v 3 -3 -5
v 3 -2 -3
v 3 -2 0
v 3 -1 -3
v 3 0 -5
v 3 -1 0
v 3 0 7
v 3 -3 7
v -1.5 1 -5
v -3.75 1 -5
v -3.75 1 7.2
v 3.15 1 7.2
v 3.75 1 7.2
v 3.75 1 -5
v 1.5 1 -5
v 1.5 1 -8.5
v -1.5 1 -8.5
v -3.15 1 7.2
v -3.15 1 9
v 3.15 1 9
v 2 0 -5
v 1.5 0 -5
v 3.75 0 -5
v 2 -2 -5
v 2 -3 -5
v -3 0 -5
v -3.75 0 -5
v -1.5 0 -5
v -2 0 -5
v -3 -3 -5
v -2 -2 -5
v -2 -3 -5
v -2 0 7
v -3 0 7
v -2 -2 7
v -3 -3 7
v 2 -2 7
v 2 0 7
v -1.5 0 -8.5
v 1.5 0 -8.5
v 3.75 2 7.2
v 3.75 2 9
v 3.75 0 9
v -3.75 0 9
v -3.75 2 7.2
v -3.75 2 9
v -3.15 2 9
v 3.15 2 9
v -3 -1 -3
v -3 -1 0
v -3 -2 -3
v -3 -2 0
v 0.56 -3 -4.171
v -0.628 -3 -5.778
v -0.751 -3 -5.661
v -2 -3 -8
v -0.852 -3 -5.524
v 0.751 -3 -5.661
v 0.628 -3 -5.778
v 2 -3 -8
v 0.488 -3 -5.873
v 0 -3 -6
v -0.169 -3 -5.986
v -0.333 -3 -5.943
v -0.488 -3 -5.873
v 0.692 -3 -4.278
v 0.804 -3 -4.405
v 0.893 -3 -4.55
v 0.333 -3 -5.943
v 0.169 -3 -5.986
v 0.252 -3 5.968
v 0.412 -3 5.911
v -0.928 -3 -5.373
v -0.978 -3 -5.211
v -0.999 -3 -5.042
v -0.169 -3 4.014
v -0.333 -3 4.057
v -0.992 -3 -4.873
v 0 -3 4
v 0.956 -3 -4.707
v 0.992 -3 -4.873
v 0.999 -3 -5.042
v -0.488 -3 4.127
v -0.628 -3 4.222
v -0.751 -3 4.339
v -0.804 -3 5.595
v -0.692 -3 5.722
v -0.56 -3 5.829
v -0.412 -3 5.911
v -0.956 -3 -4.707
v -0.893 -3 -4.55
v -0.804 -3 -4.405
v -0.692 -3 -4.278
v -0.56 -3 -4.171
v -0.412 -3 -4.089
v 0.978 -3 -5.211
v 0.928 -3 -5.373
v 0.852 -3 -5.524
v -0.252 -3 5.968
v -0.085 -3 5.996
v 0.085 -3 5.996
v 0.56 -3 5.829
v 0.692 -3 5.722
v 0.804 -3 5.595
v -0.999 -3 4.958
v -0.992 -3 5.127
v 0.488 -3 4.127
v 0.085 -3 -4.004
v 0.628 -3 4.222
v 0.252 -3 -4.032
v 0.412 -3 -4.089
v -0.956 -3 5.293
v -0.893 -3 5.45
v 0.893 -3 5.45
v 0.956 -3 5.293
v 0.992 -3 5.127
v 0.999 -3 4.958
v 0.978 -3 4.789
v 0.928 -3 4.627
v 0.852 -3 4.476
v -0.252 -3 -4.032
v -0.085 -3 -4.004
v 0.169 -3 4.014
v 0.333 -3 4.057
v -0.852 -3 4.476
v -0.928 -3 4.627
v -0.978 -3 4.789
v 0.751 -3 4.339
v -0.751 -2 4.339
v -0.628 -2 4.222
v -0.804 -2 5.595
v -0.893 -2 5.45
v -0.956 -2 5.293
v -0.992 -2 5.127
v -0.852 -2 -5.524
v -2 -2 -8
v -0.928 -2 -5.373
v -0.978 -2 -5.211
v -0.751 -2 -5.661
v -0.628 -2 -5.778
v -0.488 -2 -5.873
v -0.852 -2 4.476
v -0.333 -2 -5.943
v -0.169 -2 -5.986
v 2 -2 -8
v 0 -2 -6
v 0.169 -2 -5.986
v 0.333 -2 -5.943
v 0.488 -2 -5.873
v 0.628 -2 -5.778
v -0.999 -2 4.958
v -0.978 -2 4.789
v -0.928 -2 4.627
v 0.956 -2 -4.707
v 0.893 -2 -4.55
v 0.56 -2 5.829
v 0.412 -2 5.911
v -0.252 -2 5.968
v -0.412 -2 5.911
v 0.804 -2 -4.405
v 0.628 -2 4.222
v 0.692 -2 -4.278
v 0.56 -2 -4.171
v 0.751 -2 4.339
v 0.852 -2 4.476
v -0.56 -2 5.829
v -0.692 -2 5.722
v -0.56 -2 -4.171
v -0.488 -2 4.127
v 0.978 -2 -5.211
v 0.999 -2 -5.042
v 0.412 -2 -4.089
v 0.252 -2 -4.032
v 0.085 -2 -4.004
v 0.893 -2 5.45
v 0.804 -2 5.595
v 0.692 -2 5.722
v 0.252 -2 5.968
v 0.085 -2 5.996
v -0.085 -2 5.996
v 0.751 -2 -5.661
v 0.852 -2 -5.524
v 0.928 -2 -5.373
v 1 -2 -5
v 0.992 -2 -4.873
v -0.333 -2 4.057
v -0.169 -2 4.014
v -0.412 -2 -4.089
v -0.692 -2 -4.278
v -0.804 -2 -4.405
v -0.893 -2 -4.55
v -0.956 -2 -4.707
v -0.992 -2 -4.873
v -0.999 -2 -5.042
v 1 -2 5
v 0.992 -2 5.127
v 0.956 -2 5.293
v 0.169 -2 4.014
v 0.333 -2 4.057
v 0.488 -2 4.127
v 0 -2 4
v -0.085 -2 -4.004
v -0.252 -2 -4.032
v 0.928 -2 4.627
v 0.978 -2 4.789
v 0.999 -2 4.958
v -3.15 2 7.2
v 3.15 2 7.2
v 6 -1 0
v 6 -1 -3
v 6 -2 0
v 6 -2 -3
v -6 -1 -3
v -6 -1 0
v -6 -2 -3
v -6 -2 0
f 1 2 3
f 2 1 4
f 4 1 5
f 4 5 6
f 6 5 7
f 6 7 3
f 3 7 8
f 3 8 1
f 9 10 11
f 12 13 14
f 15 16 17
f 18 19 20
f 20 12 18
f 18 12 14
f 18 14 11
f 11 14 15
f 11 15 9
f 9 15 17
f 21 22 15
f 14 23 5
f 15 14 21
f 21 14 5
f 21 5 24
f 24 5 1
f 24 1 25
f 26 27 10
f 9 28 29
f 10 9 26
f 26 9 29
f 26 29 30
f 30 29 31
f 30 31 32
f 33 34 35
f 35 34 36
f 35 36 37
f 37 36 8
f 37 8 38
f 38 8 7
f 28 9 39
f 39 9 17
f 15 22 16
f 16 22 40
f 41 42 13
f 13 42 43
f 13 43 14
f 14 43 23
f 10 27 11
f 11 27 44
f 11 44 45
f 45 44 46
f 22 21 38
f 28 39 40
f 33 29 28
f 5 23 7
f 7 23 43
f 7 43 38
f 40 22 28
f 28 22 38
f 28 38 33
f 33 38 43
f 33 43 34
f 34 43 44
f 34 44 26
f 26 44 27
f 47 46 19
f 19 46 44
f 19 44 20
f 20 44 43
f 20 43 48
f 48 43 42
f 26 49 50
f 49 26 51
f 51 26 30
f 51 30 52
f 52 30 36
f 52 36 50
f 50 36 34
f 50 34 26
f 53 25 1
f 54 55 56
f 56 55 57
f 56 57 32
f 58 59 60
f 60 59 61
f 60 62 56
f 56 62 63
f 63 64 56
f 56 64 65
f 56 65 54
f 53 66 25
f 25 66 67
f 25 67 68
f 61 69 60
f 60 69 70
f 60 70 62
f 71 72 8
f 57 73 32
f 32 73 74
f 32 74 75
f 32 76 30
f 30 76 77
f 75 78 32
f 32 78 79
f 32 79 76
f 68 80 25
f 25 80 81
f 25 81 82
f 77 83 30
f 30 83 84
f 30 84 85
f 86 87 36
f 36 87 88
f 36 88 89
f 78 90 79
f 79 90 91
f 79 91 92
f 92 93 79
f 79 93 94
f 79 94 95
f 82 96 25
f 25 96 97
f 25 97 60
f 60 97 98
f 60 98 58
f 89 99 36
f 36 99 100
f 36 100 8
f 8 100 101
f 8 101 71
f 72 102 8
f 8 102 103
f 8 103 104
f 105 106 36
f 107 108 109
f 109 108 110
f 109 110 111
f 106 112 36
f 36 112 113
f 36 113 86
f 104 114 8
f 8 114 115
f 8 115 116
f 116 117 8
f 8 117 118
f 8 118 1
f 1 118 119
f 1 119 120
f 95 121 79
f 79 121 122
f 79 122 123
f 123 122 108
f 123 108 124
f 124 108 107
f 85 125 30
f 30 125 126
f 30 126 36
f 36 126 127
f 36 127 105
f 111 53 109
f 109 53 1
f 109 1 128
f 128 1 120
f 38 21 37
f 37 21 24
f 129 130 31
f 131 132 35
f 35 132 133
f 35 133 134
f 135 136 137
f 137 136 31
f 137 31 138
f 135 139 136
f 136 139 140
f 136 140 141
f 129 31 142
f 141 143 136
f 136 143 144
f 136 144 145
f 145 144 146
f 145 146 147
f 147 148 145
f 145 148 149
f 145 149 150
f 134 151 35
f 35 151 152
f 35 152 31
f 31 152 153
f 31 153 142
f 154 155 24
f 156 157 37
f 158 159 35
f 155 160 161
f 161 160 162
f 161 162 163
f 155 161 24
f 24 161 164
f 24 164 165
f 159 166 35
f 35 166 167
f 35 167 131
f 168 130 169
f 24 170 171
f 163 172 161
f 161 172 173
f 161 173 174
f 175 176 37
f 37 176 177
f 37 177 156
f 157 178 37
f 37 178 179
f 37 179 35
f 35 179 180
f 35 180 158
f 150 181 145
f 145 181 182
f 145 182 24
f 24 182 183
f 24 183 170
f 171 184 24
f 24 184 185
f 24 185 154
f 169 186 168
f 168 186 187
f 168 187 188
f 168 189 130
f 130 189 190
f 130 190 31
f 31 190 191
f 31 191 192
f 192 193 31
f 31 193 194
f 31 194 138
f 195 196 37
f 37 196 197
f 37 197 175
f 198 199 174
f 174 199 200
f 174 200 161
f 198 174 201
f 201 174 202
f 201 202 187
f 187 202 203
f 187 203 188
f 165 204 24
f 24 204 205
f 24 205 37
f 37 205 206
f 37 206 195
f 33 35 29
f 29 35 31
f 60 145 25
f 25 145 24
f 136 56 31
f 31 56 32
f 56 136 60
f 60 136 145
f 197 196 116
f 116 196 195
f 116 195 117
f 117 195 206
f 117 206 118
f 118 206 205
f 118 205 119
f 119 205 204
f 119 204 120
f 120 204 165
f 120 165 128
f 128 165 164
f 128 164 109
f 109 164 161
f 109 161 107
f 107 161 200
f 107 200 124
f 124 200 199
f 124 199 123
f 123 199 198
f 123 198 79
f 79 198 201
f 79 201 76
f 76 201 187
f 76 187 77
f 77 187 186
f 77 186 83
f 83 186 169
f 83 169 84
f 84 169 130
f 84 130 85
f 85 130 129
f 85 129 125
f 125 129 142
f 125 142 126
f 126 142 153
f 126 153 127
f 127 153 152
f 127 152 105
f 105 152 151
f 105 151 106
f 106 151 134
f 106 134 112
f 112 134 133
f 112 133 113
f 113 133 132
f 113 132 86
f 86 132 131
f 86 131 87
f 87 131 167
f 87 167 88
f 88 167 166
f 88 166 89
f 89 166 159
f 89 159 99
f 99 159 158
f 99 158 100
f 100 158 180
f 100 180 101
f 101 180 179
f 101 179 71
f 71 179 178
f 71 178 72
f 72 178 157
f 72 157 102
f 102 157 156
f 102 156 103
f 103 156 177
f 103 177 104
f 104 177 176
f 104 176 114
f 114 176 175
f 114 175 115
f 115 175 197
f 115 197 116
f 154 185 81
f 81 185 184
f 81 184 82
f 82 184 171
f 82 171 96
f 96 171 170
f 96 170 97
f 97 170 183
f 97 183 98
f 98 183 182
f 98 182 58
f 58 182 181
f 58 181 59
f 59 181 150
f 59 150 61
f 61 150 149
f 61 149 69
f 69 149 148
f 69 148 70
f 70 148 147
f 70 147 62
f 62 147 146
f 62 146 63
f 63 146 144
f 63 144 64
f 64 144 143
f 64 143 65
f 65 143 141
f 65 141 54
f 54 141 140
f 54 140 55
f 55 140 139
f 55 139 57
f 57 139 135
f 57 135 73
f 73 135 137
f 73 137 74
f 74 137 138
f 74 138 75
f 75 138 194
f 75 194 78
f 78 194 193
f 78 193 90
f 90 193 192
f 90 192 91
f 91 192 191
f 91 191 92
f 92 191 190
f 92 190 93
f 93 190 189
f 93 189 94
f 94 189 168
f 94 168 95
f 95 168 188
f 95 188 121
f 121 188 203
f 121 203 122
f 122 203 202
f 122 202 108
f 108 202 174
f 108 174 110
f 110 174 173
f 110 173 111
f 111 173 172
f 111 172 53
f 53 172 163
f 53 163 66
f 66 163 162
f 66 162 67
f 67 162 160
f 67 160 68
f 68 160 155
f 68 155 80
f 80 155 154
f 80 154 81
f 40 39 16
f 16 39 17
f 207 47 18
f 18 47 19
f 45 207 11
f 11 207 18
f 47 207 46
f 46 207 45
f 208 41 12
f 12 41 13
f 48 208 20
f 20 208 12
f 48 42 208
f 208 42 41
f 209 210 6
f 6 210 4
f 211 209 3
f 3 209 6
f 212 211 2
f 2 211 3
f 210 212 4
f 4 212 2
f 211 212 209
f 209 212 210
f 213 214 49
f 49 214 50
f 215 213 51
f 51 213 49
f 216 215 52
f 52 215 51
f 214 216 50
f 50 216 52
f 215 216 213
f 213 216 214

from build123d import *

# Parameters (mm, degrees)
SKETCH1_W            = 7.5
SKETCH1_H            = 10
BOSS_EXTRUDE1_DEPTH  = 1
SKETCH10_W           = 7.5
SKETCH10_H           = 1
BOSS_EXTRUDE5_DEPTH  = 2
SKETCH56_W           = 7.5
SKETCH56_H           = 1
BOSS_EXTRUDE17_DEPTH = 2
SKETCH57_W           = 3
SKETCH57_H           = 1
BOSS_EXTRUDE18_DEPTH = 5
SKETCH58_W           = 1.5
SKETCH58_H           = 1
BOSS_EXTRUDE19_DEPTH = 2
SKETCH59_W           = 1.5
SKETCH59_H           = 1
BOSS_EXTRUDE20_DEPTH = 2
SKETCH60_W           = 1
SKETCH60_H           = 1.5
BOSS_EXTRUDE23_DEPTH = 1.5
SKETCH61_W           = 1
SKETCH61_H           = 0.75
CUT_EXTRUDE1_DEPTH   = 0.5
SKETCH62_W           = 6
SKETCH62_H           = 12
BOSS_EXTRUDE25_DEPTH = 3
SKETCH64_W           = 4
SKETCH64_H           = 2
CUT_EXTRUDE2_DEPTH   = 12
SKETCH65_W           = 4
SKETCH65_H           = 1
BOSS_EXTRUDE26_DEPTH = 3
SKETCH66_R           = 1
CUT_EXTRUDE3_DEPTH   = 1
SKETCH69_W           = 7
SKETCH69_H           = 1.5
CUT_EXTRUDE8_DEPTH   = 10
SKETCH70_W           = 0.6
SKETCH70_H           = 1.8
BOSS_EXTRUDE27_DEPTH = 1
SKETCH68_W           = 3
SKETCH68_H           = 1
BOSS_EXTRUDE28_DEPTH = 3
SKETCH67_W           = 3
SKETCH67_H           = 1
BOSS_EXTRUDE29_DEPTH = 3


with BuildPart() as part:
    # Sketch1 → Boss-Extrude1 (new body)
    with BuildSketch(Plane(origin=(0, 0, 0), x_dir=(1, 0, 0), z_dir=(0, 1, 0))):
        Rectangle(SKETCH1_W, SKETCH1_H)
    extrude(amount=BOSS_EXTRUDE1_DEPTH)

    # Sketch10 → Boss-Extrude5 (add)
    with BuildSketch(Plane.XY.offset(5)):
        with Locations((0, 0.5)):
            Rectangle(SKETCH10_W, SKETCH10_H)
    extrude(amount=BOSS_EXTRUDE5_DEPTH)

    # Sketch56 → Boss-Extrude17 (add)
    with BuildSketch(Plane.XY.offset(7)):
        with Locations((0, 0.5)):
            Rectangle(SKETCH56_W, SKETCH56_H)
    extrude(amount=BOSS_EXTRUDE17_DEPTH)

    # Sketch57 → Boss-Extrude18 (add)
    with BuildSketch(Plane(origin=(0, 0, -5), x_dir=(-1, 0, 0), z_dir=(0, 0, -1))):
        with Locations((0, 0.5)):
            Rectangle(SKETCH57_W, SKETCH57_H)
    extrude(amount=BOSS_EXTRUDE18_DEPTH)

    # Sketch58 → Boss-Extrude19 (add)
    with BuildSketch(Plane(origin=(1.5, 0, 0), x_dir=(0, 0, -1), z_dir=(1, 0, 0))):
        with Locations((9.25, 0.5)):
            Rectangle(SKETCH58_W, SKETCH58_H)
    extrude(amount=BOSS_EXTRUDE19_DEPTH)

    # Sketch59 → Boss-Extrude20 (add)
    with BuildSketch(Plane.ZY.offset(1.5)):
        with Locations((-9.25, 0.5)):
            Rectangle(SKETCH59_W, SKETCH59_H)
    extrude(amount=BOSS_EXTRUDE20_DEPTH)

    # Sketch60 → Boss-Extrude23 (add)
    with BuildSketch(Plane(origin=(0, 1, 0), x_dir=(1, 0, 0), z_dir=(0, 1, 0))):
        with Locations((3, 9.25)):
            Rectangle(SKETCH60_W, SKETCH60_H)
        with Locations((-3, 9.25)):
            Rectangle(SKETCH60_W, SKETCH60_H)
    extrude(amount=BOSS_EXTRUDE23_DEPTH)

    # Sketch61 → Cut-Extrude1 (cut)
    with BuildSketch(Plane(origin=(0, 2.5, 0), x_dir=(1, 0, 0), z_dir=(0, 1, 0))):
        with Locations((-3, 9.245443114)):
            Rectangle(SKETCH61_W, SKETCH61_H)
        with Locations((3, 9.245443114)):
            Rectangle(SKETCH61_W, SKETCH61_H)
    extrude(amount=-CUT_EXTRUDE1_DEPTH, mode=Mode.SUBTRACT)

    # Sketch62 → Boss-Extrude25 (add)
    with BuildSketch(Plane(origin=(0, 0, 0), x_dir=(-1, 0, 0), z_dir=(0, -1, 0))):
        with Locations((0, -1)):
            Rectangle(SKETCH62_W, SKETCH62_H)
    extrude(amount=BOSS_EXTRUDE25_DEPTH)

    # Sketch64 → Cut-Extrude2 (cut)
    with BuildSketch(Plane.XY.offset(7)):
        with Locations((0, -1)):
            Rectangle(SKETCH64_W, SKETCH64_H)
    extrude(amount=-CUT_EXTRUDE2_DEPTH, mode=Mode.SUBTRACT)

    # Sketch65 → Boss-Extrude26 (add)
    with BuildSketch(Plane(origin=(0, 0, -5), x_dir=(-1, 0, 0), z_dir=(0, 0, -1))):
        with Locations((0, -2.5)):
            Rectangle(SKETCH65_W, SKETCH65_H)
    extrude(amount=BOSS_EXTRUDE26_DEPTH)

    # Sketch66 → Cut-Extrude3 (cut)
    with BuildSketch(Plane(origin=(0, -3, 0), x_dir=(-1, 0, 0), z_dir=(0, -1, 0))):
        with Locations((0, -5)):
            Circle(SKETCH66_R)
        with Locations((0, 5)):
            Circle(SKETCH66_R)
    extrude(amount=-CUT_EXTRUDE3_DEPTH, mode=Mode.SUBTRACT)

    # Sketch69 → Cut-Extrude8 (cut)
    with BuildSketch(Plane.XZ):
        with Locations((0, -9.25)):
            Rectangle(SKETCH69_W, SKETCH69_H)
    extrude(amount=-CUT_EXTRUDE8_DEPTH, mode=Mode.SUBTRACT)

    # Sketch70 → Boss-Extrude27 (add)
    with BuildSketch(Plane(origin=(0, 1, 0), x_dir=(1, 0, 0), z_dir=(0, 1, 0))):
        with Locations((-3.45, -8.1)):
            Rectangle(SKETCH70_W, SKETCH70_H)
        with Locations((3.45, -8.1)):
            Rectangle(SKETCH70_W, SKETCH70_H)
    extrude(amount=BOSS_EXTRUDE27_DEPTH)

    # Sketch68 → Boss-Extrude28 (add)
    with BuildSketch(Plane(origin=(3, 0, 0), x_dir=(0, 0, -1), z_dir=(1, 0, 0))):
        with Locations((1.5, -1.5)):
            Rectangle(SKETCH68_W, SKETCH68_H)
    extrude(amount=BOSS_EXTRUDE28_DEPTH)

    # Sketch67 → Boss-Extrude29 (add)
    with BuildSketch(Plane.ZY.offset(3)):
        with Locations((-1.5, -1.5)):
            Rectangle(SKETCH67_W, SKETCH67_H)
    extrude(amount=BOSS_EXTRUDE29_DEPTH)


solid = part.part
